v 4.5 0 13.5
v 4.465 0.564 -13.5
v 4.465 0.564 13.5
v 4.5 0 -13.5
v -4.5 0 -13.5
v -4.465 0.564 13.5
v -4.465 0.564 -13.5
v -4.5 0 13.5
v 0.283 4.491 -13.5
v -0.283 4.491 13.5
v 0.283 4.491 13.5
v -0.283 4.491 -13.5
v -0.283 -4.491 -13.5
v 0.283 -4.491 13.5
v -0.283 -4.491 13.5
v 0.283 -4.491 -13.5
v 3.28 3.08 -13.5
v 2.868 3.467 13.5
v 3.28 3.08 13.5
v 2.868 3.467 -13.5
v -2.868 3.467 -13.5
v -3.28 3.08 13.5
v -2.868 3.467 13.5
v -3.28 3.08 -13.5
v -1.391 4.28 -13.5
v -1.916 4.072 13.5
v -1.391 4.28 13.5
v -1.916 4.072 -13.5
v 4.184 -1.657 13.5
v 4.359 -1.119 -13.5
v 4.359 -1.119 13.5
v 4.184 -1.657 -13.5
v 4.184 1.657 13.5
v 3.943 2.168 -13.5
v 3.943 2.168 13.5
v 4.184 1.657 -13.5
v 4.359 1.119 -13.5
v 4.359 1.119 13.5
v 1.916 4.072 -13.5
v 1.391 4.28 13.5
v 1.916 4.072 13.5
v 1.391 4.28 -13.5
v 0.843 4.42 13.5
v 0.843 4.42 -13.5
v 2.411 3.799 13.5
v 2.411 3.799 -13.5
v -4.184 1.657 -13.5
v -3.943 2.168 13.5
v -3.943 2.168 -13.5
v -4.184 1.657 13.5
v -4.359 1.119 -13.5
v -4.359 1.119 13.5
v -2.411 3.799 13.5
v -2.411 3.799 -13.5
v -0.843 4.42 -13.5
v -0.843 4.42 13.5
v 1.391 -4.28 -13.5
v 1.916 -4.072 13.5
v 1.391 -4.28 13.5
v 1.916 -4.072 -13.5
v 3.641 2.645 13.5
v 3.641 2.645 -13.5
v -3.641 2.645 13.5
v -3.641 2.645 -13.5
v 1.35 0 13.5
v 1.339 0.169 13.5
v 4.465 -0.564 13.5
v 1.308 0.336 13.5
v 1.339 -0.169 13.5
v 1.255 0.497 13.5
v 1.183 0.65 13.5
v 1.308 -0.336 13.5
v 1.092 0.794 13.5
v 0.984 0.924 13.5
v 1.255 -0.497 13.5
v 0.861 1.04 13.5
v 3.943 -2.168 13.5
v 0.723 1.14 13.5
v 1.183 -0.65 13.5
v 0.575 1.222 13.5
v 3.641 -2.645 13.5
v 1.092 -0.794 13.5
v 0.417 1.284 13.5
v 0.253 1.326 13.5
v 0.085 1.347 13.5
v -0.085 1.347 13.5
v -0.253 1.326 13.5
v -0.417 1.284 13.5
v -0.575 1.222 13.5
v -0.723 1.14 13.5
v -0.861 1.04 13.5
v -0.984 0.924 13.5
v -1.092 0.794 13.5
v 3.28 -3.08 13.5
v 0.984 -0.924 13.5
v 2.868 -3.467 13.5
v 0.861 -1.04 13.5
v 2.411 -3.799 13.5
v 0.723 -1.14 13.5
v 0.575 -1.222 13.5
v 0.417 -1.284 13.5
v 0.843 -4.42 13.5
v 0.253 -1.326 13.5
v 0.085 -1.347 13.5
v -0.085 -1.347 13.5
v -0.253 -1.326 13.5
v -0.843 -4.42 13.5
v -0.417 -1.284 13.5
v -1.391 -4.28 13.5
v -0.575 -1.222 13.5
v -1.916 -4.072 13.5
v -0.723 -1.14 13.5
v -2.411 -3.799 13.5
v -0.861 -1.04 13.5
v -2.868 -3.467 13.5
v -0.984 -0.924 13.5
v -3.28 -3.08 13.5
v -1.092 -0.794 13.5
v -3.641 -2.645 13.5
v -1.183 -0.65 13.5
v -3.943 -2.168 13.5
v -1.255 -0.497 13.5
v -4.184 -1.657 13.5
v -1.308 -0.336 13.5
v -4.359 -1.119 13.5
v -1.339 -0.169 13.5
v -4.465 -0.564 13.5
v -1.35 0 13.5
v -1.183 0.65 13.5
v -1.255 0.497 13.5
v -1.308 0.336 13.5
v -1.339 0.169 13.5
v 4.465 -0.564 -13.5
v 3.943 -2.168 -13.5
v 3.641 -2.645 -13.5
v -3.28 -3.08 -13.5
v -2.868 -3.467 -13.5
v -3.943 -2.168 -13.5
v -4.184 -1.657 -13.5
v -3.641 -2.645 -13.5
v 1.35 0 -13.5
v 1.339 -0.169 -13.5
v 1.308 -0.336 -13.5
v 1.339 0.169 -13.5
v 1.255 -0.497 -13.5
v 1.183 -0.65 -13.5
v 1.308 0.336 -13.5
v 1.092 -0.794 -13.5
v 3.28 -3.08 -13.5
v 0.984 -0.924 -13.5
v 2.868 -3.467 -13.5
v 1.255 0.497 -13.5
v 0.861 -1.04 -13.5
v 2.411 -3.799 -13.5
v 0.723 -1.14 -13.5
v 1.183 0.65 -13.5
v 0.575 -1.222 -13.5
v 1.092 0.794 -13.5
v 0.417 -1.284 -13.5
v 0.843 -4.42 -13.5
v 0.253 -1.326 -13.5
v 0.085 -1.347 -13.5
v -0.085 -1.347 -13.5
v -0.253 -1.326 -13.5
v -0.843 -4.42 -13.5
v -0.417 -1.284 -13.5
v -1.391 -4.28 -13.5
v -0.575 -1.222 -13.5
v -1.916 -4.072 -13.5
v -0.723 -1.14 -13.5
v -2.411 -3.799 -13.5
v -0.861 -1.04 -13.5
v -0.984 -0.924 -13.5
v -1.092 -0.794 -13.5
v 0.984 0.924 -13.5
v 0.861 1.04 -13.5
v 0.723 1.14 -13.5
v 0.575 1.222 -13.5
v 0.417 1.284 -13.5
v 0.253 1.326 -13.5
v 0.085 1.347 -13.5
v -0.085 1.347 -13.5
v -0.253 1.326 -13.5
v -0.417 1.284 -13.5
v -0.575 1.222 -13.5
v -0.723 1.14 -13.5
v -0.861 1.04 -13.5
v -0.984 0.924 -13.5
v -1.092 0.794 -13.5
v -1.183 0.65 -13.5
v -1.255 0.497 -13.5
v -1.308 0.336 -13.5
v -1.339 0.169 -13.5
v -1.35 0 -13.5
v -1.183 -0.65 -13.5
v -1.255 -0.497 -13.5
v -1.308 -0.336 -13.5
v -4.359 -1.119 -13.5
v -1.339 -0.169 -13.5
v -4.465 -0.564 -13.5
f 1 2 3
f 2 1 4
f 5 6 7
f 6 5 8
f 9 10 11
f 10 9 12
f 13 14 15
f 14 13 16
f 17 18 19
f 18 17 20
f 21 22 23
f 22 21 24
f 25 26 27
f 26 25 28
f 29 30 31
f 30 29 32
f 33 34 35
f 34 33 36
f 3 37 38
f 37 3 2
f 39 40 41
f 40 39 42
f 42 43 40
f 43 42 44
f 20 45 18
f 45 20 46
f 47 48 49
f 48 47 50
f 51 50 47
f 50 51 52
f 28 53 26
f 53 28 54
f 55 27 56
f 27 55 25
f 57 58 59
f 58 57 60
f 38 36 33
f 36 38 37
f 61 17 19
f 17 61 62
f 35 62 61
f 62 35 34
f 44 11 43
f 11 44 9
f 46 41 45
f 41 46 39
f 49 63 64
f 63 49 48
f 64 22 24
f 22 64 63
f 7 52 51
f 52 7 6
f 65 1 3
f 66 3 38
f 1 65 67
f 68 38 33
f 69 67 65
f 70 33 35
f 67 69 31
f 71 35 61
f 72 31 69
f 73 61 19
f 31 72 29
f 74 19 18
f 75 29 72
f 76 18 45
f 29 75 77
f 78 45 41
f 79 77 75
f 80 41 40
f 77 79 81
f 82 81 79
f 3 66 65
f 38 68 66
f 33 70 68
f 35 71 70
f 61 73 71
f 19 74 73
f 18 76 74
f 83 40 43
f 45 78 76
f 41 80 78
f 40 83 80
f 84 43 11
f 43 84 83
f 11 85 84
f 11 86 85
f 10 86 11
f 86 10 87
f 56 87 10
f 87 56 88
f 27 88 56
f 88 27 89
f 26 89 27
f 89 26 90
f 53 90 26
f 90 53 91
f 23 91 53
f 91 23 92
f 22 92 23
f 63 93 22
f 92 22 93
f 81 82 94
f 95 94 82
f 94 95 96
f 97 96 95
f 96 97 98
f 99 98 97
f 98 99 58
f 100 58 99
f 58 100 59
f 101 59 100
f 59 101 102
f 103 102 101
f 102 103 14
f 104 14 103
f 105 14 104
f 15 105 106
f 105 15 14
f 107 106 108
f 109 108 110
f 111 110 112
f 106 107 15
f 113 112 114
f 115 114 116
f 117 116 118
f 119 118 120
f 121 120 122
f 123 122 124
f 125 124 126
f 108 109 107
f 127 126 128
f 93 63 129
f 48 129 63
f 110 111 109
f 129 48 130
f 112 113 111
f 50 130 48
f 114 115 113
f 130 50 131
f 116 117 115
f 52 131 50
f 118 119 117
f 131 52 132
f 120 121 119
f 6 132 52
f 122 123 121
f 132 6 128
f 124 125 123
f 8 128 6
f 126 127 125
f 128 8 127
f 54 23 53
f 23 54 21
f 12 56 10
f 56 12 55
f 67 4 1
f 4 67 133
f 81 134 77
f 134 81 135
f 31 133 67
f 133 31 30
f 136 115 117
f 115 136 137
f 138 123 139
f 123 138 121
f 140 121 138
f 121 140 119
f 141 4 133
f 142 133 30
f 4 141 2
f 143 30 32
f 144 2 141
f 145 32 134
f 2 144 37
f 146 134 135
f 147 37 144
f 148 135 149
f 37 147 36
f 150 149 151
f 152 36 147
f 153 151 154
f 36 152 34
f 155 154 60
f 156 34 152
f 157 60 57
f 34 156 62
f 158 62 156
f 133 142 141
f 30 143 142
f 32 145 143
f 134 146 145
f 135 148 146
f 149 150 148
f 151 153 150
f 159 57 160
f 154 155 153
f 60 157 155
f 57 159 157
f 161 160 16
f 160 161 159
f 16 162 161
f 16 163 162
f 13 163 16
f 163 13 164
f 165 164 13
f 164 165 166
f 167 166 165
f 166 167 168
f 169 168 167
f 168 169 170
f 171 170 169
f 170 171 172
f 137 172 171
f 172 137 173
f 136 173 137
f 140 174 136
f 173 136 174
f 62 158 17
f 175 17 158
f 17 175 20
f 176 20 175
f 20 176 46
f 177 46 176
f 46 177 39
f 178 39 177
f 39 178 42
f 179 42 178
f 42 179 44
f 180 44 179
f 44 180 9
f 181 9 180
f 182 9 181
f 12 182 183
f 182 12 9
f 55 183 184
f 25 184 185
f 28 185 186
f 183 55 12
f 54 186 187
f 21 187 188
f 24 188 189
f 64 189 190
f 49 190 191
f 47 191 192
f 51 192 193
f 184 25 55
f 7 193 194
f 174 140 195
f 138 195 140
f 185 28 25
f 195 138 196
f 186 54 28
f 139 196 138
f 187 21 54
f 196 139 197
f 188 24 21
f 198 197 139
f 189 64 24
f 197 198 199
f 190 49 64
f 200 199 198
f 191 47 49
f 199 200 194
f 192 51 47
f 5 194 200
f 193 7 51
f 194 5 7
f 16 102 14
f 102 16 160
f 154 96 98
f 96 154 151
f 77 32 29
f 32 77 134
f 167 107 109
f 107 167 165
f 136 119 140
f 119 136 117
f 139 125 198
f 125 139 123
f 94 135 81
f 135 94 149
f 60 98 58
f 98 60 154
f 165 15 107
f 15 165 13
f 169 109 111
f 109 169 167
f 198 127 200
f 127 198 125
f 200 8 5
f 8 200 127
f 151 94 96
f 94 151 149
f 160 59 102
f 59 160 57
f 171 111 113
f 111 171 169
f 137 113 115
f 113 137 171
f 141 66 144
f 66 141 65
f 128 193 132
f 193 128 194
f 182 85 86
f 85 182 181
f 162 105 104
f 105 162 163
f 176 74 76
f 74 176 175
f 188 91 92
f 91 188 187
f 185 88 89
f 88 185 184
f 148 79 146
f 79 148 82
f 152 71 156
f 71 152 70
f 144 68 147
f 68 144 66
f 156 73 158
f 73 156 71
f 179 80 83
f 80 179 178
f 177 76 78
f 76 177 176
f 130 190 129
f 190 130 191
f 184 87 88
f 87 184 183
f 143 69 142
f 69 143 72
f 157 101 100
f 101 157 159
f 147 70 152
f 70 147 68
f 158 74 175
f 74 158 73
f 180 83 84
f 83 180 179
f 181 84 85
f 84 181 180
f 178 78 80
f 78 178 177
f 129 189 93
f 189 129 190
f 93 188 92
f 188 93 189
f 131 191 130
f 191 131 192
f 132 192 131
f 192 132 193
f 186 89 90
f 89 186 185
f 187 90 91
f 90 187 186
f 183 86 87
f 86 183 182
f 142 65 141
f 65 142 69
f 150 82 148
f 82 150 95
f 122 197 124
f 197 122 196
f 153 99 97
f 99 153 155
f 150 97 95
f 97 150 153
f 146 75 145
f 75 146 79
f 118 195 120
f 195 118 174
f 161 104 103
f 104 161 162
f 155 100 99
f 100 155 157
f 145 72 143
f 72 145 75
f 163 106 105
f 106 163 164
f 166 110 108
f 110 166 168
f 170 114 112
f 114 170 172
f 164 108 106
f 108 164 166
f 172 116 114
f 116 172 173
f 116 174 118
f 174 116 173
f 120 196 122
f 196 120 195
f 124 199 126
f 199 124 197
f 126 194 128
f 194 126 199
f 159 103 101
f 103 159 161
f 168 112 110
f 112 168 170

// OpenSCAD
$fn = 50;


difference() {
	union() {
		translate(v = [0, 0, -13.5000000000]) {
			cylinder(h = 27, r = 4.5000000000);
		}
	}
	union() {
		translate(v = [0, 0, -100.0000000000]) {
			cylinder(h = 200, r = 1.3500000000);
		}
	}
}
